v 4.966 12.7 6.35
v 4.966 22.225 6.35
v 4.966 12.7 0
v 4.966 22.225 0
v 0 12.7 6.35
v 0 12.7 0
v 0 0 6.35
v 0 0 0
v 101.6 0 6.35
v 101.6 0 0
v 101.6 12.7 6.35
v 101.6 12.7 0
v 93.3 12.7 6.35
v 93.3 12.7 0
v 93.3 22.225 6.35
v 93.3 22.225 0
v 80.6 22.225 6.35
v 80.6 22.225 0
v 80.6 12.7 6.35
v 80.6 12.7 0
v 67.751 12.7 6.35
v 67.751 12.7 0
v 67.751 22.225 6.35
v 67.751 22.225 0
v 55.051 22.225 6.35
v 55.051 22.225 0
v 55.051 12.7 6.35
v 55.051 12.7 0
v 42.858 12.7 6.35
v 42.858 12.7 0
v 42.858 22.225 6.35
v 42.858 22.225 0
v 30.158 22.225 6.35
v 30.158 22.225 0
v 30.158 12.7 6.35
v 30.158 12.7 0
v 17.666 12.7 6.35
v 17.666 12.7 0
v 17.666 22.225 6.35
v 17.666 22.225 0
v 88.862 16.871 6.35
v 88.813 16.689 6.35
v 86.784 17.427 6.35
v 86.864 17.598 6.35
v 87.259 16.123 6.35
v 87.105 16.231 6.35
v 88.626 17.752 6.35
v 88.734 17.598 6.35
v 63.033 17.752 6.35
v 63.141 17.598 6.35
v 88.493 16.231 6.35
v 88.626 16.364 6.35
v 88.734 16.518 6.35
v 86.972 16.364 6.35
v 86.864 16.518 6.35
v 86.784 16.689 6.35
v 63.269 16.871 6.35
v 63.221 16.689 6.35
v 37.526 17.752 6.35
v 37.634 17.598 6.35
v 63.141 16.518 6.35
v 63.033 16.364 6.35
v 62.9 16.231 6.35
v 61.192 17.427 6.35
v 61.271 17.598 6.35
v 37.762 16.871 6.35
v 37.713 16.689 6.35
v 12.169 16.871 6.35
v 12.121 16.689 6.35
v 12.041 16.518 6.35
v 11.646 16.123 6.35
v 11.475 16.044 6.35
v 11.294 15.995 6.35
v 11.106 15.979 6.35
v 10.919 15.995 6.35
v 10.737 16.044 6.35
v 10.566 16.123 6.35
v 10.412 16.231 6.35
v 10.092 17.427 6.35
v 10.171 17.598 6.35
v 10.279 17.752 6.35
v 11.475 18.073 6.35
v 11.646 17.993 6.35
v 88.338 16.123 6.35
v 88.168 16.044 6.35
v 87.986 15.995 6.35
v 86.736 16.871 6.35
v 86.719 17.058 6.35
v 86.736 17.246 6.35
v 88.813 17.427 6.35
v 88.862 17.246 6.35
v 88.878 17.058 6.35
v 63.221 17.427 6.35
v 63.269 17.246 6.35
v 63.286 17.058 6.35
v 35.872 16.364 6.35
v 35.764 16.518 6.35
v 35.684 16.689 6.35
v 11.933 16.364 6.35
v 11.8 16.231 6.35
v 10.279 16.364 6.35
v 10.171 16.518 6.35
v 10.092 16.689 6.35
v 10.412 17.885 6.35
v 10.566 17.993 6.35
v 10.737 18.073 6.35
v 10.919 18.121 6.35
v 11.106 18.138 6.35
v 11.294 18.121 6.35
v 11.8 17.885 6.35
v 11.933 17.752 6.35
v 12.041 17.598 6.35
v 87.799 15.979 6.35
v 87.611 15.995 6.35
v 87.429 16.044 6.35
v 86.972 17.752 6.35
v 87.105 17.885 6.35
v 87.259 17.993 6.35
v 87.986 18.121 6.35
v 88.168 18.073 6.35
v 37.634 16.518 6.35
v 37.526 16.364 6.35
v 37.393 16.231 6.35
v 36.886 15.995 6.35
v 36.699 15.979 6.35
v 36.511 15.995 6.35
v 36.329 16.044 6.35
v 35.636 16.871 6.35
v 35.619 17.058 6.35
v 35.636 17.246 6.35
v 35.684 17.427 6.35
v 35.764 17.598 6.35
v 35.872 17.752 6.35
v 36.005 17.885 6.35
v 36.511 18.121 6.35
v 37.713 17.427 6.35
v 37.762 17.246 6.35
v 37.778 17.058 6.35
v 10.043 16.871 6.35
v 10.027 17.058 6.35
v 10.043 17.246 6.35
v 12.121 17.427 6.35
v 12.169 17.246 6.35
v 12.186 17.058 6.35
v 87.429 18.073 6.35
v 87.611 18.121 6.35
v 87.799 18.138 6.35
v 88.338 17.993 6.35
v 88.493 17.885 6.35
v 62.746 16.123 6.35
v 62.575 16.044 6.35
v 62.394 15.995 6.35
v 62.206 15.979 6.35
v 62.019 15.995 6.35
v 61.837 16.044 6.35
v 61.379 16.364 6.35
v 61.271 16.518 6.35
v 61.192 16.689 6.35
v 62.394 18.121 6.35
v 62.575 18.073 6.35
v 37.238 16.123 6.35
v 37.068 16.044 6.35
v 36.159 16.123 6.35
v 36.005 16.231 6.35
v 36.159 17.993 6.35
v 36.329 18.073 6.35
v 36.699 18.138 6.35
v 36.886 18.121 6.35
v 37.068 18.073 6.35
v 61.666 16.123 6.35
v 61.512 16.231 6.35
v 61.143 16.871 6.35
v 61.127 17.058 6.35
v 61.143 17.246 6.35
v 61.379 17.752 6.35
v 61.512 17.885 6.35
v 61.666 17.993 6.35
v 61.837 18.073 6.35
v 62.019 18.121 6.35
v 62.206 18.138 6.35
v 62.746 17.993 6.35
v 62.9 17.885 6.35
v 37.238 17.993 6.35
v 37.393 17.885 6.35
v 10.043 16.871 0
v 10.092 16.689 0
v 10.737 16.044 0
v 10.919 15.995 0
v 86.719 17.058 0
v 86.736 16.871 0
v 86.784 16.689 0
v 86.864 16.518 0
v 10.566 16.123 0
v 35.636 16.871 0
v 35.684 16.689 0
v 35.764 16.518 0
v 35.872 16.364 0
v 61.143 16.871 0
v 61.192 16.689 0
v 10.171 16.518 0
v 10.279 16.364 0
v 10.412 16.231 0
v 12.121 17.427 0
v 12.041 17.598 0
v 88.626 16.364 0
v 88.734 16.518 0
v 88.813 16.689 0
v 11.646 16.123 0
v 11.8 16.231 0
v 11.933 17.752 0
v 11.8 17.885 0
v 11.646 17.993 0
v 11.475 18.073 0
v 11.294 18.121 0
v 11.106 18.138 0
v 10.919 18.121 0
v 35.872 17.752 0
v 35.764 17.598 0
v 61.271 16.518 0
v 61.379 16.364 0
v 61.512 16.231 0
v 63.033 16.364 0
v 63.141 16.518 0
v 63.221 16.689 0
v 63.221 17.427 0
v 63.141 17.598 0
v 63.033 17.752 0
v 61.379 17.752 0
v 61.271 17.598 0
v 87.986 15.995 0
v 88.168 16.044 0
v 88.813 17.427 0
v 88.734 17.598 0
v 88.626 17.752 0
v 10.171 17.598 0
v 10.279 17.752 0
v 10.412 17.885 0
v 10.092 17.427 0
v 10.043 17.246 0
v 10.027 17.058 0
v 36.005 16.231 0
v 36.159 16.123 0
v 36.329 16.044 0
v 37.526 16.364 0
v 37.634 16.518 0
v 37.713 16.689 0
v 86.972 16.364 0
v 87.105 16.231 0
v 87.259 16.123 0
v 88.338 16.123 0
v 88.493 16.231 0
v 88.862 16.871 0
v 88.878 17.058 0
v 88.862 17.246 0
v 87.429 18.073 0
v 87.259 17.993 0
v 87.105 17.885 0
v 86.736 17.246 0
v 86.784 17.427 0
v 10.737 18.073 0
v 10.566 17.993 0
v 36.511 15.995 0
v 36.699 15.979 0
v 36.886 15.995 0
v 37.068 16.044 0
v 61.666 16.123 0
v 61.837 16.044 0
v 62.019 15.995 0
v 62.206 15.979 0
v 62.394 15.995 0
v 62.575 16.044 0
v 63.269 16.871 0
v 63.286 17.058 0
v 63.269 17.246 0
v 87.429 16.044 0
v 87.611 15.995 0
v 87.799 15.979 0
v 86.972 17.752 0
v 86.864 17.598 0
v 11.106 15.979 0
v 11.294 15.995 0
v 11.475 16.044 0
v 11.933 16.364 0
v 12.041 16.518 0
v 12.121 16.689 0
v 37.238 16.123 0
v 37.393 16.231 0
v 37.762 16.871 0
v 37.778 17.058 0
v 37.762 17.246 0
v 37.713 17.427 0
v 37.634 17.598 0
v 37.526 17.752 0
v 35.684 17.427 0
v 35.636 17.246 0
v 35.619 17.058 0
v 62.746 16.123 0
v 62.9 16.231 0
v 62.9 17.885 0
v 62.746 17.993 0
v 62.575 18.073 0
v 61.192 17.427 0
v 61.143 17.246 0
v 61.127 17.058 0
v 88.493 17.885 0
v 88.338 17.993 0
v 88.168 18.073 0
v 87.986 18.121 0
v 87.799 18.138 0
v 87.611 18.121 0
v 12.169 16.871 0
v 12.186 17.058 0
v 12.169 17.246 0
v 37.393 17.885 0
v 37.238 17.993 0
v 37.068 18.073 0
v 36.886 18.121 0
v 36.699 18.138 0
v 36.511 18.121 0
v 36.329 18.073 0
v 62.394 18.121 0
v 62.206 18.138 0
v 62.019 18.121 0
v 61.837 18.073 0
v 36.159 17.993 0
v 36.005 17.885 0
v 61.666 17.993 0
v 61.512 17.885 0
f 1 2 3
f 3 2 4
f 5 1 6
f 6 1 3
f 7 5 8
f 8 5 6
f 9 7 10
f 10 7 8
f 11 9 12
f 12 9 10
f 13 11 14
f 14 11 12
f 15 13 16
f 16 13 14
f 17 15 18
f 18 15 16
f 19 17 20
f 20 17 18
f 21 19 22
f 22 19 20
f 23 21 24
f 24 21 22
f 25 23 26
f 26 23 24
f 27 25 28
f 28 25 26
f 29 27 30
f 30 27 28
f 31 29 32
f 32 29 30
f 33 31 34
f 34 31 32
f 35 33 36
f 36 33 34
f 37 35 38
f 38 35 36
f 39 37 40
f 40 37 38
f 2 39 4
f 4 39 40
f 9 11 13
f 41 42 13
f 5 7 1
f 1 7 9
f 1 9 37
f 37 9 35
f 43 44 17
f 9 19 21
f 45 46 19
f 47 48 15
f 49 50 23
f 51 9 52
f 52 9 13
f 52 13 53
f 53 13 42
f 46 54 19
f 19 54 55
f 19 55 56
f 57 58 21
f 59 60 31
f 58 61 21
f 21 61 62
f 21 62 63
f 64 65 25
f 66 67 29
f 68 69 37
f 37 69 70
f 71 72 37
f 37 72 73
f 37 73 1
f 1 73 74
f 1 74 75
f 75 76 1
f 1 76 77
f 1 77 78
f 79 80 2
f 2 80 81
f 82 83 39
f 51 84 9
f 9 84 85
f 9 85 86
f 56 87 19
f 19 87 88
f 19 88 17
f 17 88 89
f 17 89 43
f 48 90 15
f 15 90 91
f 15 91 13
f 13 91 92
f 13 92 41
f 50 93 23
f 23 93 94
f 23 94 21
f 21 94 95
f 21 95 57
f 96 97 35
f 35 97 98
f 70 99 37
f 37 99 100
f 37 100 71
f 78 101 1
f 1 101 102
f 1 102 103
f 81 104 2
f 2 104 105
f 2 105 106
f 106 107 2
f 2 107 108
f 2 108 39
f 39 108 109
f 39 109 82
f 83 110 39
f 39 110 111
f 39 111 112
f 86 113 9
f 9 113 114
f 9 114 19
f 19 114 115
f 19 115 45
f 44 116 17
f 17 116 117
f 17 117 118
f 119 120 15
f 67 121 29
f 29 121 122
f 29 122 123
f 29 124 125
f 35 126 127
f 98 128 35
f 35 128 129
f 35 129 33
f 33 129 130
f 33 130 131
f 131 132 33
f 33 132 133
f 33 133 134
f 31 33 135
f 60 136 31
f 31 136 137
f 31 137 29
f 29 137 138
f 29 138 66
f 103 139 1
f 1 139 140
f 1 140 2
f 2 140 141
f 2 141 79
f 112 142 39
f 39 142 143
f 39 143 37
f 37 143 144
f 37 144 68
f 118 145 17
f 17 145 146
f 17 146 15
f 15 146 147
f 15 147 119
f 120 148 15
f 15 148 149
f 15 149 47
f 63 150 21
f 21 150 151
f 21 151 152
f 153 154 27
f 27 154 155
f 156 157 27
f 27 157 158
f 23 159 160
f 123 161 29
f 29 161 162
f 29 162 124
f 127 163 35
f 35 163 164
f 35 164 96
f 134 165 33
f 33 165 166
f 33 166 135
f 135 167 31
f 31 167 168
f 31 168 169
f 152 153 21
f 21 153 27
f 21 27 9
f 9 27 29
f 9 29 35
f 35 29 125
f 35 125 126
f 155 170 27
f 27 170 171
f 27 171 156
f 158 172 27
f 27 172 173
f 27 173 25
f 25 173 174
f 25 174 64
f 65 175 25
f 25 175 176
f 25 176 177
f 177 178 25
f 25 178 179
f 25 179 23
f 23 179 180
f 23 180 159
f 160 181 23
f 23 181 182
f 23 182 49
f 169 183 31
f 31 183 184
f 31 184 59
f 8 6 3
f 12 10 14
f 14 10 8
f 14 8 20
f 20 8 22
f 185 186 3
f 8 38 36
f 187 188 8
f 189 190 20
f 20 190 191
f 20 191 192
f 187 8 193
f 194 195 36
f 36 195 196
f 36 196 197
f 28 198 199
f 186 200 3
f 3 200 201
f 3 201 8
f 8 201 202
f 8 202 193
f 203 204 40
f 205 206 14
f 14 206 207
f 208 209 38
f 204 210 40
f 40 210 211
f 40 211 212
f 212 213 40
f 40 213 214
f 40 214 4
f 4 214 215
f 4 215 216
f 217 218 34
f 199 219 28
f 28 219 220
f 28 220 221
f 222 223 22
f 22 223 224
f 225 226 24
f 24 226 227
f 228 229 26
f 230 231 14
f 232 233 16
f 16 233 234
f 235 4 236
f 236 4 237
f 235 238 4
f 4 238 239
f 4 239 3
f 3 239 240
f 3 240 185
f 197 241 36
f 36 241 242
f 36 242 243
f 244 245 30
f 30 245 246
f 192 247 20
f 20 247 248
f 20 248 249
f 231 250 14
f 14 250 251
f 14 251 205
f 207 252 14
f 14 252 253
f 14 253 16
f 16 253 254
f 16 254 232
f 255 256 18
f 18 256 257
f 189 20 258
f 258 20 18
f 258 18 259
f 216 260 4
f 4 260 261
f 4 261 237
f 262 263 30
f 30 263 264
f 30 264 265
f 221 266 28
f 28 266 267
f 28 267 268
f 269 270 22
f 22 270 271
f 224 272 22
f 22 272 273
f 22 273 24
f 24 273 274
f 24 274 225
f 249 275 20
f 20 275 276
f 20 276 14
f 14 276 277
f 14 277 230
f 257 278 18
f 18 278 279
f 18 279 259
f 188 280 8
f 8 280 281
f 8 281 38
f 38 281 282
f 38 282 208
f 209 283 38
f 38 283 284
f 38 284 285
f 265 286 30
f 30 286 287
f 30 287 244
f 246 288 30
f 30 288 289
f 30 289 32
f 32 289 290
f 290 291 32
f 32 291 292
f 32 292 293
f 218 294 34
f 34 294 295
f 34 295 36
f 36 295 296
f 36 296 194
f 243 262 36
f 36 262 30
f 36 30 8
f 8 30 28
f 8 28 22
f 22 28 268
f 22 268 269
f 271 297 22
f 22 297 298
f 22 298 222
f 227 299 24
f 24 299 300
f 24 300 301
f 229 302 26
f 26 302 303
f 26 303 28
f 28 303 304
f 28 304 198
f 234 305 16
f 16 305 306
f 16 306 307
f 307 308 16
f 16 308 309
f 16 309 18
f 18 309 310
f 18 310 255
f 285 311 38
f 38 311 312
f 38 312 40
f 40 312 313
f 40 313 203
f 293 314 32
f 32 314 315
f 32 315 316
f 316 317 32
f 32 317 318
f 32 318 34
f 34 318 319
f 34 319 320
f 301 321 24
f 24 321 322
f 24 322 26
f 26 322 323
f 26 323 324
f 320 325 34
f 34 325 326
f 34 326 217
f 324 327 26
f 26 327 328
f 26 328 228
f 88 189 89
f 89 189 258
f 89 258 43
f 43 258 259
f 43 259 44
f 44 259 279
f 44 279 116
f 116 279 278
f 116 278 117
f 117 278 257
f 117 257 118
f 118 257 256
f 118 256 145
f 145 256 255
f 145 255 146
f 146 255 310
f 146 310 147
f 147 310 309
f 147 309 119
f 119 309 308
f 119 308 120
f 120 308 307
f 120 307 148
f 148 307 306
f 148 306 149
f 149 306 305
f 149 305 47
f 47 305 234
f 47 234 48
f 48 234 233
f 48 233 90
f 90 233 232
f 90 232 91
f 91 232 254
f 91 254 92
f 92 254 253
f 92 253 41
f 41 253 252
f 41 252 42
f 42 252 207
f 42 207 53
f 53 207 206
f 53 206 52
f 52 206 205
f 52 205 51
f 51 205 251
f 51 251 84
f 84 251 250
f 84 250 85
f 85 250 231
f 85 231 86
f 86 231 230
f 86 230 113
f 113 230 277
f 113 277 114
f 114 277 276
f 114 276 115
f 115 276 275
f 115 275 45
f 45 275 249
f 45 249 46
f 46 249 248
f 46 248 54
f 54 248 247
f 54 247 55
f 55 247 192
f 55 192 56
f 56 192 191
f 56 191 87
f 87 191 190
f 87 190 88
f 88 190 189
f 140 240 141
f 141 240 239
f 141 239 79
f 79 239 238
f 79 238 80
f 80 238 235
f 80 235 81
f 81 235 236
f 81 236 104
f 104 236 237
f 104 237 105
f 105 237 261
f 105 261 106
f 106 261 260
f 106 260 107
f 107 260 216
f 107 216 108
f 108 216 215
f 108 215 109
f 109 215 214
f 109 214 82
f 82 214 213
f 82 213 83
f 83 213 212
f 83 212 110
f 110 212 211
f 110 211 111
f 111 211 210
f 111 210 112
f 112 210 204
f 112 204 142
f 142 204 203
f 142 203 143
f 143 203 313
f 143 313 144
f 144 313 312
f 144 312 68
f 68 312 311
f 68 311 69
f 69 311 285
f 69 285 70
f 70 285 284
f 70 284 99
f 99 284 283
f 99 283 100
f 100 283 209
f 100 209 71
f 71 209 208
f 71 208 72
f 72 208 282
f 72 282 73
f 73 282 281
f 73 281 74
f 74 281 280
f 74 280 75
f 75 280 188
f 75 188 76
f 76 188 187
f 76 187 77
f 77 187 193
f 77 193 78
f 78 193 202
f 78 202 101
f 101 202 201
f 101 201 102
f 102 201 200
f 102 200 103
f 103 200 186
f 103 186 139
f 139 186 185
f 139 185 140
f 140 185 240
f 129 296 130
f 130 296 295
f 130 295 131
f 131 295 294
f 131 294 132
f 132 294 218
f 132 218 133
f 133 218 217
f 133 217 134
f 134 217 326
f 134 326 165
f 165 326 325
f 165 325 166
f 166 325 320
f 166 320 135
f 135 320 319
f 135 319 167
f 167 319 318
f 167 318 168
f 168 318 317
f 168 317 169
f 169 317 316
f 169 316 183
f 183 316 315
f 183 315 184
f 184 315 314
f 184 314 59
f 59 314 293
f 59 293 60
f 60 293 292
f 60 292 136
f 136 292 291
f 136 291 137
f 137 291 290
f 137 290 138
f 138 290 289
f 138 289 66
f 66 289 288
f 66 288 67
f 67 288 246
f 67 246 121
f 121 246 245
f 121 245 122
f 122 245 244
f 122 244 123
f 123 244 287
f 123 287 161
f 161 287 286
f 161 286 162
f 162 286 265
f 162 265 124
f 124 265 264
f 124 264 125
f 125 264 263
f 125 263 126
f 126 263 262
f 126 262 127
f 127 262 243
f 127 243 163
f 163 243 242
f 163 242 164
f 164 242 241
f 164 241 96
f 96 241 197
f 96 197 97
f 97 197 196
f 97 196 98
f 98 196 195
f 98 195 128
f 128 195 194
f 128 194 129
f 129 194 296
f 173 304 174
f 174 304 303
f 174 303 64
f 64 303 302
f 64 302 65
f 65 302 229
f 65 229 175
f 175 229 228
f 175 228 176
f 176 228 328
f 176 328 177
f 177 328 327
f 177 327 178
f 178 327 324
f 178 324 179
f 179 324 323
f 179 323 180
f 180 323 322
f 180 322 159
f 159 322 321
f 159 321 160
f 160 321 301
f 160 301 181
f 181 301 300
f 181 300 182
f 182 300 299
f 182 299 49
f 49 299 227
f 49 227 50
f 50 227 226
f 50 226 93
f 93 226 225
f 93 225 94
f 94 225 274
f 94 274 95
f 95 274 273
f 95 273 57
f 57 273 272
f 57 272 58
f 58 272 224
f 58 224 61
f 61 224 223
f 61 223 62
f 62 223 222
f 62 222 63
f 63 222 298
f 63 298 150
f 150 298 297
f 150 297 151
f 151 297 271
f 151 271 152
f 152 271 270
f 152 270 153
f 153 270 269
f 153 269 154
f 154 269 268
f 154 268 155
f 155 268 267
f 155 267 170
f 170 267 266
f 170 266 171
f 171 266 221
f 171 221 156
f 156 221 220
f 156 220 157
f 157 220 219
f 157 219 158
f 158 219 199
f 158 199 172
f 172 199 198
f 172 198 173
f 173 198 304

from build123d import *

# Parameters (mm, degrees)
SKETCH2_W           = 12.7
SKETCH2_H           = 9.525
SKETCH2_W_2         = 101.6
SKETCH2_H_2         = 12.7
BOSS_EXTRUDE1_DEPTH = 6.35
SKETCH1_R           = 1.0795
CUT_EXTRUDE2_DEPTH  = 7.35


with BuildPart() as part:
    # Sketch2 → Boss-Extrude1 (new body)
    with BuildSketch(Plane.XY):
        with Locations((11.316373708, 17.4625)):
            Rectangle(SKETCH2_W, SKETCH2_H)
        with Locations((50.8, 6.35)):
            Rectangle(SKETCH2_W_2, SKETCH2_H_2)
        with Locations((36.507855344, 17.4625)):
            Rectangle(SKETCH2_W, SKETCH2_H)
        with Locations((61.401212936, 17.4625)):
            Rectangle(SKETCH2_W, SKETCH2_H)
        with Locations((86.95048554, 17.4625)):
            Rectangle(SKETCH2_W, SKETCH2_H)
    extrude(amount=BOSS_EXTRUDE1_DEPTH)

    # Sketch1 → Cut-Extrude2 (cut, through all)
    with BuildSketch(Plane.XY):
        with Locations((87.798679551, 17.058161716)):
            Circle(SKETCH1_R)
        with Locations((62.206189969, 17.058161716)):
            Circle(SKETCH1_R)
        with Locations((36.698679643, 17.058161716)):
            Circle(SKETCH1_R)
        with Locations((11.106190061, 17.058161716)):
            Circle(SKETCH1_R)
        with Locations((31.326093812, 115.3905236)):
            Circle(SKETCH1_R)
        with Locations((56.918583394, 115.3905236)):
            Circle(SKETCH1_R)
        with Locations((82.42609372, 115.3905236)):
            Circle(SKETCH1_R)
        with Locations((108.018583302, 115.3905236)):
            Circle(SKETCH1_R)
    extrude(amount=CUT_EXTRUDE2_DEPTH, mode=Mode.SUBTRACT)


solid = part.part
